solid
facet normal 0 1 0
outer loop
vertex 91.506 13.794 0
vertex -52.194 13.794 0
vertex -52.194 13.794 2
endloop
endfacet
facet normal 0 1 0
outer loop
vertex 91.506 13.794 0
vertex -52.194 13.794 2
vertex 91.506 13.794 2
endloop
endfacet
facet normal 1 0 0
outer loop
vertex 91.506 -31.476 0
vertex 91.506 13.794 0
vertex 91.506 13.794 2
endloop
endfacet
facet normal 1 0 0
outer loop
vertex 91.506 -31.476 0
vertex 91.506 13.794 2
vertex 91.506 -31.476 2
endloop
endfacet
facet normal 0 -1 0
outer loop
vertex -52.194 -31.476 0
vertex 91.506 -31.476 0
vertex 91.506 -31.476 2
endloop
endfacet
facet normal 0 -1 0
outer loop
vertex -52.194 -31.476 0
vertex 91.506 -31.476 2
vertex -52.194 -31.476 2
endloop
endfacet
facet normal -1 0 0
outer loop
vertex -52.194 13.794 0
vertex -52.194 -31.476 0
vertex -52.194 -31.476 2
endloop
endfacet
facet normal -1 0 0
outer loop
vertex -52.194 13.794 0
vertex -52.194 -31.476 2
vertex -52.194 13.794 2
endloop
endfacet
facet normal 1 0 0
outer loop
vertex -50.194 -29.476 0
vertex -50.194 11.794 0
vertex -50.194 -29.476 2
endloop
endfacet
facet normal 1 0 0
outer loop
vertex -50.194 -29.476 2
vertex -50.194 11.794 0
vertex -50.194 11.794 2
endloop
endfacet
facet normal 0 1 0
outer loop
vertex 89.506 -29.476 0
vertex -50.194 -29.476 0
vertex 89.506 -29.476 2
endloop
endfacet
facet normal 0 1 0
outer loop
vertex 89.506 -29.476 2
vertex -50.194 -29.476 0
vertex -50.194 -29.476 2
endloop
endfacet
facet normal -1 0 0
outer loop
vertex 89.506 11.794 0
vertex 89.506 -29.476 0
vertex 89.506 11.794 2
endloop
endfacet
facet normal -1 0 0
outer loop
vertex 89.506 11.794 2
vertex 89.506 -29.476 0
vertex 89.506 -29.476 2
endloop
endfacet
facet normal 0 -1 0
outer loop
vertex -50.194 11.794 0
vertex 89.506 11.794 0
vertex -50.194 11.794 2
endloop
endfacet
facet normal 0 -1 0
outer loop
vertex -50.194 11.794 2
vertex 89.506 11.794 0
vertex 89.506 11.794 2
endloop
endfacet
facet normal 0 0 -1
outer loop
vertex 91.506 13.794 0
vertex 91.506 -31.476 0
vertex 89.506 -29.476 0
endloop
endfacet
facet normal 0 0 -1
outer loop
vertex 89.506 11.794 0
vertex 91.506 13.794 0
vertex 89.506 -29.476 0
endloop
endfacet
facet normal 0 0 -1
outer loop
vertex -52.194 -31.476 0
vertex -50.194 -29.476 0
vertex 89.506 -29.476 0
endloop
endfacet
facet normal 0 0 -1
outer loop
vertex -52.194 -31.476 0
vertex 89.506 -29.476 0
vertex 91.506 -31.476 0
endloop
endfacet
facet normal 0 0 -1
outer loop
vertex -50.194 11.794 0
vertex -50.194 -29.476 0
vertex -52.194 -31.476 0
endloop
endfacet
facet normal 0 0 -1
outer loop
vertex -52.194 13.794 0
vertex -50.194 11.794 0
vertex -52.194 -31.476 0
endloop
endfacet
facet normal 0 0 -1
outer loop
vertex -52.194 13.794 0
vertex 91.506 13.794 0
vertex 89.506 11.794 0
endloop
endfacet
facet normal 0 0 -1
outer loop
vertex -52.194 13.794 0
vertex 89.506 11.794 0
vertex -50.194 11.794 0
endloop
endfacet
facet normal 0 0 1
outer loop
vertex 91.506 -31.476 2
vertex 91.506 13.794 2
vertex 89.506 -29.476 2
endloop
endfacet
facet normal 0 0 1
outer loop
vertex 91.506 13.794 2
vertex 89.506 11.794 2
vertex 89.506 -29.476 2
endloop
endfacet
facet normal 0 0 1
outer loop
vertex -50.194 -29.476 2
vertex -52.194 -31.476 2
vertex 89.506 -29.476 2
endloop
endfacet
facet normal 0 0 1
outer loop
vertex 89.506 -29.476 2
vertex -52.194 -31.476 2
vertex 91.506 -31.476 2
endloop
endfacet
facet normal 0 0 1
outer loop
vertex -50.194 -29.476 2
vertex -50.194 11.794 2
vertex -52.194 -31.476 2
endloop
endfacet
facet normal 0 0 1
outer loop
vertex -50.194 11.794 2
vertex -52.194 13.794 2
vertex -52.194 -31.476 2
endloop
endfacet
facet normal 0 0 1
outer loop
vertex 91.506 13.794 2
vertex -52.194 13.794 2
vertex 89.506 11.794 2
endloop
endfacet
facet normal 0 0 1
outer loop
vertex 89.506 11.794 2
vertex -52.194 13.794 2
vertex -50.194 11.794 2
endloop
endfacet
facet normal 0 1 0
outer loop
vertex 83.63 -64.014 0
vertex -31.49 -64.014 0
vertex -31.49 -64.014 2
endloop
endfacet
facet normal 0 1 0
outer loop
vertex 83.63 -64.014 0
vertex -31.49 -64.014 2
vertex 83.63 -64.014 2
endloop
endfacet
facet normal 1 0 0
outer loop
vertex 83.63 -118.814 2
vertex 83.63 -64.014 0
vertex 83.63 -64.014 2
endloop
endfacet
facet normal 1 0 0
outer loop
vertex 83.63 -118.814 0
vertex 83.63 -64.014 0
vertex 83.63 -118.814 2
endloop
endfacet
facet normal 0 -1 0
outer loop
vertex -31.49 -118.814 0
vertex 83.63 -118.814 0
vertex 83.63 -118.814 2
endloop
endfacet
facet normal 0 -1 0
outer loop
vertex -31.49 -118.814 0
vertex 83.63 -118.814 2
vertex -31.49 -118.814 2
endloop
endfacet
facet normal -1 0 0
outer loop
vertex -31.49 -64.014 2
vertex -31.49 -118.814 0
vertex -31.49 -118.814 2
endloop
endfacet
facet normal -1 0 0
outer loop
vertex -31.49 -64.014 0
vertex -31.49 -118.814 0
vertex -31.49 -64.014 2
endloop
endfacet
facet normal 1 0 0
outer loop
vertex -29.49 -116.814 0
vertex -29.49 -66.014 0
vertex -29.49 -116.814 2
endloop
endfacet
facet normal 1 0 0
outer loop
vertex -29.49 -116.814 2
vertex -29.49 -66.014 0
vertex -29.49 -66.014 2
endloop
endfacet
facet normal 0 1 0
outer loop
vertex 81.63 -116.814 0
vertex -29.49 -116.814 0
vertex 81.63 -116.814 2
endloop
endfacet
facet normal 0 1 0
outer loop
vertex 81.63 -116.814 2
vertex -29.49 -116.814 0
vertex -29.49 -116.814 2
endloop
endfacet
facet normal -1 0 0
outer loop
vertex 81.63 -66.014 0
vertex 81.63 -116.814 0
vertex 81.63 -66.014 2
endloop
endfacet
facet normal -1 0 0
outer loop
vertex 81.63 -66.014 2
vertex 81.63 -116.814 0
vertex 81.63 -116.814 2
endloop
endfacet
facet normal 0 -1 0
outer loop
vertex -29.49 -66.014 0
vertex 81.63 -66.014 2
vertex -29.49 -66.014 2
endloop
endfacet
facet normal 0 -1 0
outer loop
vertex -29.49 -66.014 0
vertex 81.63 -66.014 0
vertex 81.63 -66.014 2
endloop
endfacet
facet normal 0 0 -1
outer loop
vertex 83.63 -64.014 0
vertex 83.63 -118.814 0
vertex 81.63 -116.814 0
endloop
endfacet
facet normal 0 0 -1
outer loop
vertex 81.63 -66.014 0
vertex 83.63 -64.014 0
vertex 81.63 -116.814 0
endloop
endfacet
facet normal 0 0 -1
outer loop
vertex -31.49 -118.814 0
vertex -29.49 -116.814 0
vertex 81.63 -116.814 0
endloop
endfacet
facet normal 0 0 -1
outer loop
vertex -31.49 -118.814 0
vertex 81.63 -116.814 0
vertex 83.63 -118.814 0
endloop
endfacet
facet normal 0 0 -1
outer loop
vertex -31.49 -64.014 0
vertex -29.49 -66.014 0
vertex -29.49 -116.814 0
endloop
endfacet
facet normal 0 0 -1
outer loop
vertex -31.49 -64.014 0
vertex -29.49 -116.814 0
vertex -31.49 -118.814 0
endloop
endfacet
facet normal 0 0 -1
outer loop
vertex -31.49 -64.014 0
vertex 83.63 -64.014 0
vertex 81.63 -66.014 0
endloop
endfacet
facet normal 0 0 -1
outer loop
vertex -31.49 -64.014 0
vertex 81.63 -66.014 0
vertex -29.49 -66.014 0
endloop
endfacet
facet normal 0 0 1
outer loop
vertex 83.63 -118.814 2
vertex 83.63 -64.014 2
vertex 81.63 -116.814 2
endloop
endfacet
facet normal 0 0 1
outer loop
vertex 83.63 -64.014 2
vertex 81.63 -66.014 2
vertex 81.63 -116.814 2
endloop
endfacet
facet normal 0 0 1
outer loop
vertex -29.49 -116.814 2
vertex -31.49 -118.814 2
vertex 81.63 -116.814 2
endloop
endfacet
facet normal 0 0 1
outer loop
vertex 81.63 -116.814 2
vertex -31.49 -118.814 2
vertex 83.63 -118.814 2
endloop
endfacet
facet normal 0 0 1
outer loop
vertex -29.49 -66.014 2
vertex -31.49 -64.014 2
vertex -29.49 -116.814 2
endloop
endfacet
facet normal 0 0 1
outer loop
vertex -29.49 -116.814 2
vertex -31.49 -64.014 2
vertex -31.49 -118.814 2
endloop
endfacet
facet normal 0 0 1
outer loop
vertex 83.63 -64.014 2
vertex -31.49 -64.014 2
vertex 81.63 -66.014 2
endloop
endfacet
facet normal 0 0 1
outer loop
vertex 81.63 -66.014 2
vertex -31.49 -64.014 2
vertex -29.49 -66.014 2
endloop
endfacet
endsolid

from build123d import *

# Parameters (mm, degrees)
SKETCH_W      = 143.7
SKETCH_H      = 45.27
SKETCH_W_2    = 139.7
SKETCH_H_2    = 41.27
PAD_DEPTH     = 2
SKETCH001_W   = 115.12
SKETCH001_H   = 54.8
SKETCH001_W_2 = 111.12
SKETCH001_H_2 = 50.8
PAD001_DEPTH  = 2


with BuildPart() as top:
    # Sketch → Pad (new body)
    with BuildSketch(Plane.XY):
        with Locations((19.656128, -8.841233)):
            Rectangle(SKETCH_W, SKETCH_H)
        with Locations((19.656128, -8.841233)):
            Rectangle(SKETCH_W_2, SKETCH_H_2, mode=Mode.SUBTRACT)
    extrude(amount=PAD_DEPTH)


with BuildPart() as bottom:
    # Sketch001 → Pad001 (new body)
    with BuildSketch(Plane.XY):
        with Locations((26.069892, -91.413854)):
            Rectangle(SKETCH001_W, SKETCH001_H)
        with Locations((26.069892, -91.413854)):
            Rectangle(SKETCH001_W_2, SKETCH001_H_2, mode=Mode.SUBTRACT)
    extrude(amount=PAD001_DEPTH)


solid = Compound([top.part, bottom.part])
